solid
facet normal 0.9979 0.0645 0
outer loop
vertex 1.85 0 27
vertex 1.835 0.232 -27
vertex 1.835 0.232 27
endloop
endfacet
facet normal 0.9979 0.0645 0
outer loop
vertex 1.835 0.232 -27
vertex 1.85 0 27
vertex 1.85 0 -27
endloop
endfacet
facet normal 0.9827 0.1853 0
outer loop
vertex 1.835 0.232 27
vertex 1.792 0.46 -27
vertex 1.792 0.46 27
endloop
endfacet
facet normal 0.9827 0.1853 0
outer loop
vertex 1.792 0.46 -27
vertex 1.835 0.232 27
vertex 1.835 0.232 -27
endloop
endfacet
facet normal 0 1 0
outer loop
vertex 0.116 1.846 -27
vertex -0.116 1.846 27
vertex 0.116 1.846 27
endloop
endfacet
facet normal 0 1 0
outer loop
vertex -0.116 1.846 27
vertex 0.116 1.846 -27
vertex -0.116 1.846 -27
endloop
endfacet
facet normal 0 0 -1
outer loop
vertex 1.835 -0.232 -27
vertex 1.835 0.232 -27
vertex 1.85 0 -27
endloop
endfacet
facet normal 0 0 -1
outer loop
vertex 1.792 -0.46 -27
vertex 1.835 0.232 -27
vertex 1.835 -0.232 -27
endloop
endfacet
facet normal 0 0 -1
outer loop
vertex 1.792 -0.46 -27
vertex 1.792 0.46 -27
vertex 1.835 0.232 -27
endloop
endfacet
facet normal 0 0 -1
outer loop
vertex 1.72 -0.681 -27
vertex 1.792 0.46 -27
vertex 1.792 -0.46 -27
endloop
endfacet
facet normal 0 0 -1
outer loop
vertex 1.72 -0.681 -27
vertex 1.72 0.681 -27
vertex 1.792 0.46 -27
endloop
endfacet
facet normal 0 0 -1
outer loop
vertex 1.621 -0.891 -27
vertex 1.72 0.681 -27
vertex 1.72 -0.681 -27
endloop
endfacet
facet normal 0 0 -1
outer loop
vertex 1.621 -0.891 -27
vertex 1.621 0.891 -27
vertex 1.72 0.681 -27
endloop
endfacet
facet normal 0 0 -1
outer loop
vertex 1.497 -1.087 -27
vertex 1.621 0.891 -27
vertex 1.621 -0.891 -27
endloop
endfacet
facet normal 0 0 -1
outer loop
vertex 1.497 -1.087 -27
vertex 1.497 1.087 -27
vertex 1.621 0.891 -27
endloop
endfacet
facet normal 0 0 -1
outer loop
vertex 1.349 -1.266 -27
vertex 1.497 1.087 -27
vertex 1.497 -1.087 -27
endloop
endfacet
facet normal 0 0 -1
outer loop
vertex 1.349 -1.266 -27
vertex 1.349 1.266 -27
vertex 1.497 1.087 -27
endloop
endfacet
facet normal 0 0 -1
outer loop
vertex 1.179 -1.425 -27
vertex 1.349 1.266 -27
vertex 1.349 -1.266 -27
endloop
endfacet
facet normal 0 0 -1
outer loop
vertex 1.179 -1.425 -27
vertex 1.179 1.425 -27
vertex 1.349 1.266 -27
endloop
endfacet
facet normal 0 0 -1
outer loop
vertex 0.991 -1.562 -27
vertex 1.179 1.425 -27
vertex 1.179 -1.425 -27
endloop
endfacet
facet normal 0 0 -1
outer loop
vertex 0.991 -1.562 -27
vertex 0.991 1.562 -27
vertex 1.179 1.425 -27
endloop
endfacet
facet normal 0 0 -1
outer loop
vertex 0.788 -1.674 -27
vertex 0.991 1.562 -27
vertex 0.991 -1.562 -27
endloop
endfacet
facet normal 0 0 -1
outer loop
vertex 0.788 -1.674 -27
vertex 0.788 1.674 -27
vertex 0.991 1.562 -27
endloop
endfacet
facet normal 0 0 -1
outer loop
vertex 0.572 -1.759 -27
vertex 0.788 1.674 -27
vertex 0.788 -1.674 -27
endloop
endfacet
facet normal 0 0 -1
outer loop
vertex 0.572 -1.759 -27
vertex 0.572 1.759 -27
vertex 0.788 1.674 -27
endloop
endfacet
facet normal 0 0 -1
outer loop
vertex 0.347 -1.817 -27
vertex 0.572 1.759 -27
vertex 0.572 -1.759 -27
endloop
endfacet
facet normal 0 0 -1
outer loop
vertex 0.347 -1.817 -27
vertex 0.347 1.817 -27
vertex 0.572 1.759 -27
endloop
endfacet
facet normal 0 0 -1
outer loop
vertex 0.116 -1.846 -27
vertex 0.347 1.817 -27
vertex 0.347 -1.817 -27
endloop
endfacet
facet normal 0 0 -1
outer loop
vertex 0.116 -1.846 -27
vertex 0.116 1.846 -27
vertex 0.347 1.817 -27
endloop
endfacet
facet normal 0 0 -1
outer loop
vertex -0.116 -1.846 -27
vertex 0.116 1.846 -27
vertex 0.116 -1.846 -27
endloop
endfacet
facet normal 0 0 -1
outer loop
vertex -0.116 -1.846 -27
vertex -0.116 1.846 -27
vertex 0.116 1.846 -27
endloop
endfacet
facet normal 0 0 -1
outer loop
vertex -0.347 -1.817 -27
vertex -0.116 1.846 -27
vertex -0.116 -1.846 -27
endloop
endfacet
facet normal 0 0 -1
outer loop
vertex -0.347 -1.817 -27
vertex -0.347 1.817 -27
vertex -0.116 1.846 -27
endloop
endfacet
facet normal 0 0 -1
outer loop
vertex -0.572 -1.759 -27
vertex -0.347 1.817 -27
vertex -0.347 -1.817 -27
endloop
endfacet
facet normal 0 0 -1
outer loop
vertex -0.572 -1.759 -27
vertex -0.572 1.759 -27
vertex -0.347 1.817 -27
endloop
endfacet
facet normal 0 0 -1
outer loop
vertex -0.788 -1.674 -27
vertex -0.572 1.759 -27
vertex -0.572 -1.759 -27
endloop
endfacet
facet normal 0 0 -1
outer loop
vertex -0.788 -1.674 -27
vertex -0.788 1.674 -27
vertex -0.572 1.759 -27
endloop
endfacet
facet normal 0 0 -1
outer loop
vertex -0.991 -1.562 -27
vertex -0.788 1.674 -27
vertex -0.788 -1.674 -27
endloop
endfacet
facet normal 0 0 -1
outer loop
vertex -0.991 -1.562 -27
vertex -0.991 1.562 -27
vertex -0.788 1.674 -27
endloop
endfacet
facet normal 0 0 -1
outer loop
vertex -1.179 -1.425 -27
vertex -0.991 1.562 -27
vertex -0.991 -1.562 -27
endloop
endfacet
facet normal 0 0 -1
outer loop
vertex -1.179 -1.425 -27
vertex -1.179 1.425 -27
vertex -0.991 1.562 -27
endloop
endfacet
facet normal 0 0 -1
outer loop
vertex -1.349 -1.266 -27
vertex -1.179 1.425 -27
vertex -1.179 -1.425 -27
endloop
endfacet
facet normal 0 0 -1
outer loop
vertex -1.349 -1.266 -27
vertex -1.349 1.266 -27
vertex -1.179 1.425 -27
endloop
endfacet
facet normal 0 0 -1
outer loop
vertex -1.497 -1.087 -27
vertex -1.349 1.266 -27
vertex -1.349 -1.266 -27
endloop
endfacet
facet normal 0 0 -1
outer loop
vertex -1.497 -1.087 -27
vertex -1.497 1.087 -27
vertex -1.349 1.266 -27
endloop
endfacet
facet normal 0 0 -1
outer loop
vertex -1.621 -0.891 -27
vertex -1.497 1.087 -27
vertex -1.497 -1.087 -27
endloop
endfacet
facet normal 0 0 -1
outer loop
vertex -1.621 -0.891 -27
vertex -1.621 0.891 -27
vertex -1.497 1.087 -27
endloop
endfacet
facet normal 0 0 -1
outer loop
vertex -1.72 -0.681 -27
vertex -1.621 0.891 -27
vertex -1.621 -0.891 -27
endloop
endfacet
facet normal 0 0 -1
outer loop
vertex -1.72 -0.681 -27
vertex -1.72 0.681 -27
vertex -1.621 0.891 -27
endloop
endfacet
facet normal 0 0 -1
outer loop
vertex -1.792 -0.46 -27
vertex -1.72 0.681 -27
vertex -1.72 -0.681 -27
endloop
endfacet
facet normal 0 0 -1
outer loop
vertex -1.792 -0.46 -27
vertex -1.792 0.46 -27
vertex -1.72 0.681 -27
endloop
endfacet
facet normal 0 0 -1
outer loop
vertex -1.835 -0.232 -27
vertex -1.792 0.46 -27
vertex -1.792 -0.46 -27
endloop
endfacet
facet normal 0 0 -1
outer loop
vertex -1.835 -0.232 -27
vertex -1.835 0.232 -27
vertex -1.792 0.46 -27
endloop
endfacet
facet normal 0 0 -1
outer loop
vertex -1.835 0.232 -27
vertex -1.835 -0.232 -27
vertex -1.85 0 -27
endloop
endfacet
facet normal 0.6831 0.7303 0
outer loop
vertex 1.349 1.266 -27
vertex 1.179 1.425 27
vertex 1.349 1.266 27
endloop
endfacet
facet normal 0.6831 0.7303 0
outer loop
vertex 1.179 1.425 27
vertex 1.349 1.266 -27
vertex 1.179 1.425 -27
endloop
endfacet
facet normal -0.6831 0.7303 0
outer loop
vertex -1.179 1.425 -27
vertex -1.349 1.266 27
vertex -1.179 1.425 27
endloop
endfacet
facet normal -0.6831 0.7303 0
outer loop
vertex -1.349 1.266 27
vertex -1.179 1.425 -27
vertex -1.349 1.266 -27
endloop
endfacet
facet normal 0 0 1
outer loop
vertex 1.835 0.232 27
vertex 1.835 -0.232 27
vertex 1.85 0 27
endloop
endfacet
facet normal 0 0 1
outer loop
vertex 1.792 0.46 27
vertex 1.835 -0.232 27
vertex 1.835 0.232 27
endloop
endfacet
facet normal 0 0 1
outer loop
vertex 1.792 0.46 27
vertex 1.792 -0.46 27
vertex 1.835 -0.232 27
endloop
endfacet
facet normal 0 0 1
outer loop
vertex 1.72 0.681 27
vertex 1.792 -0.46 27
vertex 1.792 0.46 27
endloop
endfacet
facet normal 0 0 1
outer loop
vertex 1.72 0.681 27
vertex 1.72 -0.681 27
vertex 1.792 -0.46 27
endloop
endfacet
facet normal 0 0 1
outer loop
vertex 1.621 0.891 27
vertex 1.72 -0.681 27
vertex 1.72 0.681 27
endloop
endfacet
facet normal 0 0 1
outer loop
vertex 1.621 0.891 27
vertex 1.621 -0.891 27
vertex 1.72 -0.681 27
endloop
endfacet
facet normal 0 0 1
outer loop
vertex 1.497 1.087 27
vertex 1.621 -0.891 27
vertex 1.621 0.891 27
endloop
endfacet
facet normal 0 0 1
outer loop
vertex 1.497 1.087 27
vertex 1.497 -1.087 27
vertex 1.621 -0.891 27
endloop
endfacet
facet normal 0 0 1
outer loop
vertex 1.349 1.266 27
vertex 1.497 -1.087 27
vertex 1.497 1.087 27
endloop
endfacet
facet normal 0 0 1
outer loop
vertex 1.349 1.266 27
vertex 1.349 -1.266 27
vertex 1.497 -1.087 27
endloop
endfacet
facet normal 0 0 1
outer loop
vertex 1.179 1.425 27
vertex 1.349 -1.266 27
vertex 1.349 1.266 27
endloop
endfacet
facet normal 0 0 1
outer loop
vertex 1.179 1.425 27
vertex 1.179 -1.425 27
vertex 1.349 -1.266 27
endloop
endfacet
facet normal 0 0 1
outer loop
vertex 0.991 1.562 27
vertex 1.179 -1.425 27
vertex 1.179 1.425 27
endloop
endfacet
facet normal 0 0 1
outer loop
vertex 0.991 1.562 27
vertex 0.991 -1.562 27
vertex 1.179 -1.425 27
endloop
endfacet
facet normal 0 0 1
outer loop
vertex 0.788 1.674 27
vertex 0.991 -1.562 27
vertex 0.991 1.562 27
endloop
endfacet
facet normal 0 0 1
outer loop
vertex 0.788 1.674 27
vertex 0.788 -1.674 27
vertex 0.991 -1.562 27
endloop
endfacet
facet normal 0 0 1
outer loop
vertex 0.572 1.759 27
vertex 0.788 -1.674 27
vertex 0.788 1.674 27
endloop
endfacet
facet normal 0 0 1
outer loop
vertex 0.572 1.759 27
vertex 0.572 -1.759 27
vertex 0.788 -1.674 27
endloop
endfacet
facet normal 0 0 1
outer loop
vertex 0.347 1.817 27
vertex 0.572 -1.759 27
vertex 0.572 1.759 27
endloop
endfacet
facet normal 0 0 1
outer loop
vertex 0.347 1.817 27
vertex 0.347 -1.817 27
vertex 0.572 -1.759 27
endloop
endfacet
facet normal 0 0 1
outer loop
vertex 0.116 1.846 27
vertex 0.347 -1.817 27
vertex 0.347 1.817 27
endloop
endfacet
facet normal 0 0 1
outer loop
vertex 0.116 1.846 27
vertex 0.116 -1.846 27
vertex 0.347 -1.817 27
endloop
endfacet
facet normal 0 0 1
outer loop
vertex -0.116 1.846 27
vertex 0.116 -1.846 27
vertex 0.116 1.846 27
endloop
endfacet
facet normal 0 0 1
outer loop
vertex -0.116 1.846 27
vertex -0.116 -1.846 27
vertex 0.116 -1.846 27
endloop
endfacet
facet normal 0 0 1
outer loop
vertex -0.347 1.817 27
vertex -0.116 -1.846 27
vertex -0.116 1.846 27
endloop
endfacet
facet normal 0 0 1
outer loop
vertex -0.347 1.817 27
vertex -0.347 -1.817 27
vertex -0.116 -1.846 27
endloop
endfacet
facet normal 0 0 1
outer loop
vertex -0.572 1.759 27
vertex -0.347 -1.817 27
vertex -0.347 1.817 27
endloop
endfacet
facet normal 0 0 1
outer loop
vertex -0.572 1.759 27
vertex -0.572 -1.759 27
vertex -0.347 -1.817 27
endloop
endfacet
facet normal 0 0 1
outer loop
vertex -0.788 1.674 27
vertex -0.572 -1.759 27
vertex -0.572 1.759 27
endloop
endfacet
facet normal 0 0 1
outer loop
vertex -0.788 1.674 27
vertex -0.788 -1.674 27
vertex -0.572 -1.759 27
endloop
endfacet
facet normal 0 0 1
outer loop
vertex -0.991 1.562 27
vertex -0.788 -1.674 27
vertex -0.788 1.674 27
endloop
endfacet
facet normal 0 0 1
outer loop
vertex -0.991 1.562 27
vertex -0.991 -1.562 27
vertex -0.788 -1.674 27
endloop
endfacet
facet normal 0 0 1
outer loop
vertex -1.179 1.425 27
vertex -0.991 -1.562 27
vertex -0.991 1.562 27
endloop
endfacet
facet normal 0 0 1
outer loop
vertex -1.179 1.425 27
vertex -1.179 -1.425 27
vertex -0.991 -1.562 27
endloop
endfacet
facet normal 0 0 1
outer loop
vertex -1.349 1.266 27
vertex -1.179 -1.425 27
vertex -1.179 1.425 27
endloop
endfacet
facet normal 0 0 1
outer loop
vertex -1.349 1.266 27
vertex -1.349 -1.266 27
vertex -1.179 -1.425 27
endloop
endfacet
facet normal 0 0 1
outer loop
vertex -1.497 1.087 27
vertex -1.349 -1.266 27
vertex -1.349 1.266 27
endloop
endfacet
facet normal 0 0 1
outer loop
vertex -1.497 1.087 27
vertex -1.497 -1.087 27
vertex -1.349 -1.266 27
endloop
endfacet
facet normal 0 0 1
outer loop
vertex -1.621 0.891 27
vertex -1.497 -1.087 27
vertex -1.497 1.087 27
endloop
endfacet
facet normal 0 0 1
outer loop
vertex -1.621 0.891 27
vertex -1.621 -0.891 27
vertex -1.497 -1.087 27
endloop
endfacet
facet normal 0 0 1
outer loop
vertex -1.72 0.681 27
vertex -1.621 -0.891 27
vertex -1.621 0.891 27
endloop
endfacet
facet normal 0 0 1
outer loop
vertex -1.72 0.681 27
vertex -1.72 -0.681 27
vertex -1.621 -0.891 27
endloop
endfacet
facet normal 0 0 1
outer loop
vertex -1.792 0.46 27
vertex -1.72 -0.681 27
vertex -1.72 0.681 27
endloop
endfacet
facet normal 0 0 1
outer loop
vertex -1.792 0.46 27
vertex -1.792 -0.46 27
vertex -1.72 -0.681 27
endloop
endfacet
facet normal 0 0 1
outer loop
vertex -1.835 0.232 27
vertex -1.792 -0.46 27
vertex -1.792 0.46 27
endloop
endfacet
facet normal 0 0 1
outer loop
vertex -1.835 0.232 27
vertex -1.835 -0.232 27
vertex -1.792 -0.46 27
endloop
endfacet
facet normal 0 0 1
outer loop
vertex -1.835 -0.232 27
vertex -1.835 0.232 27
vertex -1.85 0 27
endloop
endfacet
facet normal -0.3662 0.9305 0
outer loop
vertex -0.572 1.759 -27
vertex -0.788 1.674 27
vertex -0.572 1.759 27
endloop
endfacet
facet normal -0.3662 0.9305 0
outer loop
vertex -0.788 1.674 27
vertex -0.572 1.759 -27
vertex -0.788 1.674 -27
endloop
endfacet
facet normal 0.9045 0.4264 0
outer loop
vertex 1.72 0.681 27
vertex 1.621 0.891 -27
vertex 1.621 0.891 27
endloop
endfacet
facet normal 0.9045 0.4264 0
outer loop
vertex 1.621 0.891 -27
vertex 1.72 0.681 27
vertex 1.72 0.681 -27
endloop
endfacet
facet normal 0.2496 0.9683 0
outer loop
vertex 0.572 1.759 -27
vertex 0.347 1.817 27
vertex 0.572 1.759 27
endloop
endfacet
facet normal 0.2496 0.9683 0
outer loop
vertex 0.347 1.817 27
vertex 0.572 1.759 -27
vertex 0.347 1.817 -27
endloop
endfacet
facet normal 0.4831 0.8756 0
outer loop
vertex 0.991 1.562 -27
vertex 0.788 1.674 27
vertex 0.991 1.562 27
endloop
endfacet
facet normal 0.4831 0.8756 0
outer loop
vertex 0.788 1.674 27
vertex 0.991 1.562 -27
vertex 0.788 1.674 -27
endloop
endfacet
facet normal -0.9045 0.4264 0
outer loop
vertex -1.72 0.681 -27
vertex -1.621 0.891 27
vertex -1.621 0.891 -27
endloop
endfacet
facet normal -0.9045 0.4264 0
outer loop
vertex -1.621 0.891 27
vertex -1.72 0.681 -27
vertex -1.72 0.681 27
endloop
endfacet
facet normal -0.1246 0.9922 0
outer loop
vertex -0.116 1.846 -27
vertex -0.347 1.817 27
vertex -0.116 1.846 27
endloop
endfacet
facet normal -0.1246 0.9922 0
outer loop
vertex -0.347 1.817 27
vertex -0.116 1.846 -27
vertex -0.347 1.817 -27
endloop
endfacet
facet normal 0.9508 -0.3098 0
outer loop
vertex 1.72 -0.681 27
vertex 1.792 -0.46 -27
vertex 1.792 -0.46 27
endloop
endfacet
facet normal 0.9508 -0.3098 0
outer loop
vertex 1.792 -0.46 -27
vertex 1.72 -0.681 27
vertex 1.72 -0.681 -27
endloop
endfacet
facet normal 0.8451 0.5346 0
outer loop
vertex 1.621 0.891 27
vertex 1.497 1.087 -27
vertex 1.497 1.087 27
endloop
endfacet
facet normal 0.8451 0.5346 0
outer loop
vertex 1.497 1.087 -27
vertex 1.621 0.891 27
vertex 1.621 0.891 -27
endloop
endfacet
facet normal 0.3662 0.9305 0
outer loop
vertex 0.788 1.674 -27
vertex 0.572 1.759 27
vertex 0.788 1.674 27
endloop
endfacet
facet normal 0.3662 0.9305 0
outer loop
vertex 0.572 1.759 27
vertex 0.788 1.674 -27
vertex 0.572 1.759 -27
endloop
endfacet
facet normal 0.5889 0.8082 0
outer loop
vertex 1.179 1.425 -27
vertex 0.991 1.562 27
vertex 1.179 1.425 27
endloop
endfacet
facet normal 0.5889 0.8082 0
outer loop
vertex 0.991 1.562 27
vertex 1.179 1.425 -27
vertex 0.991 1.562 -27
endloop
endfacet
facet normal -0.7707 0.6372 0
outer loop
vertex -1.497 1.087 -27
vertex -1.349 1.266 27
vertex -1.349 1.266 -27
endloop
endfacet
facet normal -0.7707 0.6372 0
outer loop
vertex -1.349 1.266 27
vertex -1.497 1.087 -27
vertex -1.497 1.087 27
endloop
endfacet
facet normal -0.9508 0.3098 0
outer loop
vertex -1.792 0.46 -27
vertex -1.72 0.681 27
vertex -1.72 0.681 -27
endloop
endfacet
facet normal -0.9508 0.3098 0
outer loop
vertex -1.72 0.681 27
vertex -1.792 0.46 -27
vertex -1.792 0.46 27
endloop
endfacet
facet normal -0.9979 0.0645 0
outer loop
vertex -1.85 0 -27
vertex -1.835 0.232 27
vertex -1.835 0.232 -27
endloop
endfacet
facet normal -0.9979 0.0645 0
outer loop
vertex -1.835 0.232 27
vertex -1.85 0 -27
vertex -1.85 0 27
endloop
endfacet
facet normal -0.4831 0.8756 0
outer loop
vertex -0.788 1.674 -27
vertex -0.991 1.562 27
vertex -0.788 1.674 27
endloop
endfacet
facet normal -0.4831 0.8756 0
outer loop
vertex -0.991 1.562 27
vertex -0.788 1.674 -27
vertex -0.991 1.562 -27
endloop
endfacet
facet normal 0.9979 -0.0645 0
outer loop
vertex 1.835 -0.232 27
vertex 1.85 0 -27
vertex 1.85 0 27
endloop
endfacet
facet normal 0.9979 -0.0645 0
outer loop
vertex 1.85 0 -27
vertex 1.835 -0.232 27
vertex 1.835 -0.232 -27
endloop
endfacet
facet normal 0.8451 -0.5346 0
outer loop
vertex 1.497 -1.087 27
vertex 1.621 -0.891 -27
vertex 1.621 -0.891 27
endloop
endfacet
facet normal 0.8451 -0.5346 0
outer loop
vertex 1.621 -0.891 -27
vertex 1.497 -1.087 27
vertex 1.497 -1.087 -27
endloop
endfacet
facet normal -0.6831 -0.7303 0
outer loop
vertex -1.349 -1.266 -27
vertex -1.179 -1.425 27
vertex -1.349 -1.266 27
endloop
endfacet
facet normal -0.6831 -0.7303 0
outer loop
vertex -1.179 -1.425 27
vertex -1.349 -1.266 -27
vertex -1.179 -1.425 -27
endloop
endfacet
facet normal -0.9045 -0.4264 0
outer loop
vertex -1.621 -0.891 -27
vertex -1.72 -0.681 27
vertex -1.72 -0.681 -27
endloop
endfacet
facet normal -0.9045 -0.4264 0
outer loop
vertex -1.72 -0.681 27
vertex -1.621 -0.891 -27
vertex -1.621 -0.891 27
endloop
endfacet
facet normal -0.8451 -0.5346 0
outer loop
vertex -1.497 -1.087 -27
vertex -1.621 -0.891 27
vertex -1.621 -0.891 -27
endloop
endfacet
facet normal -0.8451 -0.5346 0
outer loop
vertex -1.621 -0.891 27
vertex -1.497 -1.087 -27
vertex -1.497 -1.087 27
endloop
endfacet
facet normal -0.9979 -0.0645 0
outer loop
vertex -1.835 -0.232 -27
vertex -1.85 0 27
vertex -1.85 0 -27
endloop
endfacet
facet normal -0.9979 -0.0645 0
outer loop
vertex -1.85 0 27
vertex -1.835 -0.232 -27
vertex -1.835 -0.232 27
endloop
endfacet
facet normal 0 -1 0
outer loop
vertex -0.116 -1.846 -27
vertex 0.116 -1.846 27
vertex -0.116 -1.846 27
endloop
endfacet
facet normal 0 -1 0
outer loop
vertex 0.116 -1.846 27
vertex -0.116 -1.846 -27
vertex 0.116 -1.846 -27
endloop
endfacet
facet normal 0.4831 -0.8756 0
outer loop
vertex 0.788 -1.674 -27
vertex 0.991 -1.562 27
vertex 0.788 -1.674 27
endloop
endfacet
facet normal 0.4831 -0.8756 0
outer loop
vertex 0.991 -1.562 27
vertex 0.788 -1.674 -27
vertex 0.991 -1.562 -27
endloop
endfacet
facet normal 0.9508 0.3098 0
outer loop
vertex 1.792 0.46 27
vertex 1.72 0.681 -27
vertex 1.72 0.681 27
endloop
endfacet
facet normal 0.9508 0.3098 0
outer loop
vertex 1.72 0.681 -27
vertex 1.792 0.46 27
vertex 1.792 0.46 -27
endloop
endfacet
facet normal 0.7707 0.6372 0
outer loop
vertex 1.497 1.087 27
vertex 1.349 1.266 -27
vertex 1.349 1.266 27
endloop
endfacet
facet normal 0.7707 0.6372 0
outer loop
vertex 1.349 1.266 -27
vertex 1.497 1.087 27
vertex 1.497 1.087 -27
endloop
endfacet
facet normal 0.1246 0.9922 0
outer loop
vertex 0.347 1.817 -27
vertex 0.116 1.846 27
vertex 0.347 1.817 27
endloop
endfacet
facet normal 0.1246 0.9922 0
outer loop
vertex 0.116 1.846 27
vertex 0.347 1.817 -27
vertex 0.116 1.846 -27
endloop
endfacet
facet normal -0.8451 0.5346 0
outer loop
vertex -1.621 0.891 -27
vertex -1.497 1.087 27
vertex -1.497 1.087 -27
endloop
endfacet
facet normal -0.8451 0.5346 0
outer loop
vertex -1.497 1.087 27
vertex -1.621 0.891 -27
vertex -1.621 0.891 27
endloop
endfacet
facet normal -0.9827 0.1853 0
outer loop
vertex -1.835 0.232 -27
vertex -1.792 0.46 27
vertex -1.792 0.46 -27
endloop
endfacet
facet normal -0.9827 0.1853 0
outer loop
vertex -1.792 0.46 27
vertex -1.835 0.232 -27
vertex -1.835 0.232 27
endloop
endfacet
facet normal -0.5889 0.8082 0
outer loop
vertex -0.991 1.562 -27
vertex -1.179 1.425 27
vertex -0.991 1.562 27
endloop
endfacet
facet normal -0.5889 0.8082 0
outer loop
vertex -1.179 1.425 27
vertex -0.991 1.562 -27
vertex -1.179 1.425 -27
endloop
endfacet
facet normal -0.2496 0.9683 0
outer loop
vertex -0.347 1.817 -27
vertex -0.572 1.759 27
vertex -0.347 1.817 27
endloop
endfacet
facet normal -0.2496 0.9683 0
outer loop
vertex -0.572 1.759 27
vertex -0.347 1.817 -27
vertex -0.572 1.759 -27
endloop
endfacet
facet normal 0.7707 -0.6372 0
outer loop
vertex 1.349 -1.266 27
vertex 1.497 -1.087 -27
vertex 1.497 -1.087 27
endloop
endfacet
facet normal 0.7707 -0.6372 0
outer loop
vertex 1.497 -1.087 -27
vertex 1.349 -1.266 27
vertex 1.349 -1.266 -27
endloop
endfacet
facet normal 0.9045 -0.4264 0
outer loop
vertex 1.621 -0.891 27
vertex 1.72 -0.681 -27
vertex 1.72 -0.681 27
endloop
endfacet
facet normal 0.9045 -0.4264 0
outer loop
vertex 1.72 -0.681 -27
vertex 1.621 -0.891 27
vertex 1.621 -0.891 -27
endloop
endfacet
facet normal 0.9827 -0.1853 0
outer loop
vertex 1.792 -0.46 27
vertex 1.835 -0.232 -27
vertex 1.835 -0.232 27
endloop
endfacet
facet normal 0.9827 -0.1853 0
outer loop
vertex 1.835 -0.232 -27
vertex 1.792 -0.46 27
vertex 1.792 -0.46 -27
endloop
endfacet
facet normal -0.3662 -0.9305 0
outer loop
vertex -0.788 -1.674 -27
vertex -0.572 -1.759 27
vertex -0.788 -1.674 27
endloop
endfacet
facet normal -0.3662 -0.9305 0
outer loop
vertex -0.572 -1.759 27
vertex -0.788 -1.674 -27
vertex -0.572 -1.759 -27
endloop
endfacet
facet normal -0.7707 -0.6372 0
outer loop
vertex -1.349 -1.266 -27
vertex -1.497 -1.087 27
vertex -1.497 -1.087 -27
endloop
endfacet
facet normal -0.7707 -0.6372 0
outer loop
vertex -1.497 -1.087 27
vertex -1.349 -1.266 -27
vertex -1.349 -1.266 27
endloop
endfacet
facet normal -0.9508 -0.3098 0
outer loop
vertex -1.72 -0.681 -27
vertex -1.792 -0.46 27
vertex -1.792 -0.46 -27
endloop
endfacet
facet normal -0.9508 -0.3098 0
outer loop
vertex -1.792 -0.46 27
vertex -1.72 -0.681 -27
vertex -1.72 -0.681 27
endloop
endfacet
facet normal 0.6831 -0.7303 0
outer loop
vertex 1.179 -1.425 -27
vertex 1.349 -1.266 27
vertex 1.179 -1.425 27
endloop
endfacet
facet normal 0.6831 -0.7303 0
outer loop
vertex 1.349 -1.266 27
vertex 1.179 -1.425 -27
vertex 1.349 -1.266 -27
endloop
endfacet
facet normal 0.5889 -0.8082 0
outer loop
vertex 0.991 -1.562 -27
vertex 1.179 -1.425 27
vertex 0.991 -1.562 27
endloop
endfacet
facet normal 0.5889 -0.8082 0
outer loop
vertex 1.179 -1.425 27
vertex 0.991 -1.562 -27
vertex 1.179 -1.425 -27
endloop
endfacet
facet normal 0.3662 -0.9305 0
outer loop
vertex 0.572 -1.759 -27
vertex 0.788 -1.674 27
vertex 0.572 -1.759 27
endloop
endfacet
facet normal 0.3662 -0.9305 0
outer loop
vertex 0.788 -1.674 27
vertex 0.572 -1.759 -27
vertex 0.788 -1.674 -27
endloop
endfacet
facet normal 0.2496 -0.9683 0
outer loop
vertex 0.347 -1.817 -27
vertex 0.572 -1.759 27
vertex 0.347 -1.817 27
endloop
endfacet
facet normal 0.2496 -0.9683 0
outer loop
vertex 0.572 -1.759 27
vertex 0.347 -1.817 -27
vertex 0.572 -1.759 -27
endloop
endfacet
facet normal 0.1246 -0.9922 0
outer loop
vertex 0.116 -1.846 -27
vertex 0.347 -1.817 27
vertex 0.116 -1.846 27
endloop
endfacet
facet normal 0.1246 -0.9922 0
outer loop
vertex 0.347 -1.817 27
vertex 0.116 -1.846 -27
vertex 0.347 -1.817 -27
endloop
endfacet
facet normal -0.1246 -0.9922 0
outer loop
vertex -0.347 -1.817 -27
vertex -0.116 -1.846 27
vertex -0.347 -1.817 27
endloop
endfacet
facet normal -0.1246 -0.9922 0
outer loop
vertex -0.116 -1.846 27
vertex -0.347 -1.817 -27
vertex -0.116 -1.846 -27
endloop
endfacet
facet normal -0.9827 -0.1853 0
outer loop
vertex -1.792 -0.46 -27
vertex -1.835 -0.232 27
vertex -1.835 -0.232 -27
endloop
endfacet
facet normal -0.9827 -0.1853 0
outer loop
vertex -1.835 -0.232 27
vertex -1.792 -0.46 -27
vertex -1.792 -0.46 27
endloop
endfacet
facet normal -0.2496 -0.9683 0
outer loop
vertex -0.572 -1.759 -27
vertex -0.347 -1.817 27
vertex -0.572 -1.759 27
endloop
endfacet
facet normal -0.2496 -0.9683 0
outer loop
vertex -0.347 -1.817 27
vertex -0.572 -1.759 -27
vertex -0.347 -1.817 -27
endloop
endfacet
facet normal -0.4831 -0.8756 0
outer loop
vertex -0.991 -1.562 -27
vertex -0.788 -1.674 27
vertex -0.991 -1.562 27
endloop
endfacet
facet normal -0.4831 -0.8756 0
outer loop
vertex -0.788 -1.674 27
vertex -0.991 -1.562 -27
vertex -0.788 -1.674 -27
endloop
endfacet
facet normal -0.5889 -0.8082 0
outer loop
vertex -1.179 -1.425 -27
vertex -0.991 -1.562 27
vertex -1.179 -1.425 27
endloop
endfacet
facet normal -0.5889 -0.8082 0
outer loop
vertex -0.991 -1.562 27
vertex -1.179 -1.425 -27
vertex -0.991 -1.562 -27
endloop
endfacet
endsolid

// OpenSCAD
$fn = 50;


difference() {
	union() {
		translate(v = [0, 0, -27.0000000000]) {
			cylinder(h = 54, r = 1.8500000000);
		}
	}
	union() {
		translate(v = [0, 0, -100.0000000000]) {
			cylinder(h = 200, r = 0);
		}
	}
}
